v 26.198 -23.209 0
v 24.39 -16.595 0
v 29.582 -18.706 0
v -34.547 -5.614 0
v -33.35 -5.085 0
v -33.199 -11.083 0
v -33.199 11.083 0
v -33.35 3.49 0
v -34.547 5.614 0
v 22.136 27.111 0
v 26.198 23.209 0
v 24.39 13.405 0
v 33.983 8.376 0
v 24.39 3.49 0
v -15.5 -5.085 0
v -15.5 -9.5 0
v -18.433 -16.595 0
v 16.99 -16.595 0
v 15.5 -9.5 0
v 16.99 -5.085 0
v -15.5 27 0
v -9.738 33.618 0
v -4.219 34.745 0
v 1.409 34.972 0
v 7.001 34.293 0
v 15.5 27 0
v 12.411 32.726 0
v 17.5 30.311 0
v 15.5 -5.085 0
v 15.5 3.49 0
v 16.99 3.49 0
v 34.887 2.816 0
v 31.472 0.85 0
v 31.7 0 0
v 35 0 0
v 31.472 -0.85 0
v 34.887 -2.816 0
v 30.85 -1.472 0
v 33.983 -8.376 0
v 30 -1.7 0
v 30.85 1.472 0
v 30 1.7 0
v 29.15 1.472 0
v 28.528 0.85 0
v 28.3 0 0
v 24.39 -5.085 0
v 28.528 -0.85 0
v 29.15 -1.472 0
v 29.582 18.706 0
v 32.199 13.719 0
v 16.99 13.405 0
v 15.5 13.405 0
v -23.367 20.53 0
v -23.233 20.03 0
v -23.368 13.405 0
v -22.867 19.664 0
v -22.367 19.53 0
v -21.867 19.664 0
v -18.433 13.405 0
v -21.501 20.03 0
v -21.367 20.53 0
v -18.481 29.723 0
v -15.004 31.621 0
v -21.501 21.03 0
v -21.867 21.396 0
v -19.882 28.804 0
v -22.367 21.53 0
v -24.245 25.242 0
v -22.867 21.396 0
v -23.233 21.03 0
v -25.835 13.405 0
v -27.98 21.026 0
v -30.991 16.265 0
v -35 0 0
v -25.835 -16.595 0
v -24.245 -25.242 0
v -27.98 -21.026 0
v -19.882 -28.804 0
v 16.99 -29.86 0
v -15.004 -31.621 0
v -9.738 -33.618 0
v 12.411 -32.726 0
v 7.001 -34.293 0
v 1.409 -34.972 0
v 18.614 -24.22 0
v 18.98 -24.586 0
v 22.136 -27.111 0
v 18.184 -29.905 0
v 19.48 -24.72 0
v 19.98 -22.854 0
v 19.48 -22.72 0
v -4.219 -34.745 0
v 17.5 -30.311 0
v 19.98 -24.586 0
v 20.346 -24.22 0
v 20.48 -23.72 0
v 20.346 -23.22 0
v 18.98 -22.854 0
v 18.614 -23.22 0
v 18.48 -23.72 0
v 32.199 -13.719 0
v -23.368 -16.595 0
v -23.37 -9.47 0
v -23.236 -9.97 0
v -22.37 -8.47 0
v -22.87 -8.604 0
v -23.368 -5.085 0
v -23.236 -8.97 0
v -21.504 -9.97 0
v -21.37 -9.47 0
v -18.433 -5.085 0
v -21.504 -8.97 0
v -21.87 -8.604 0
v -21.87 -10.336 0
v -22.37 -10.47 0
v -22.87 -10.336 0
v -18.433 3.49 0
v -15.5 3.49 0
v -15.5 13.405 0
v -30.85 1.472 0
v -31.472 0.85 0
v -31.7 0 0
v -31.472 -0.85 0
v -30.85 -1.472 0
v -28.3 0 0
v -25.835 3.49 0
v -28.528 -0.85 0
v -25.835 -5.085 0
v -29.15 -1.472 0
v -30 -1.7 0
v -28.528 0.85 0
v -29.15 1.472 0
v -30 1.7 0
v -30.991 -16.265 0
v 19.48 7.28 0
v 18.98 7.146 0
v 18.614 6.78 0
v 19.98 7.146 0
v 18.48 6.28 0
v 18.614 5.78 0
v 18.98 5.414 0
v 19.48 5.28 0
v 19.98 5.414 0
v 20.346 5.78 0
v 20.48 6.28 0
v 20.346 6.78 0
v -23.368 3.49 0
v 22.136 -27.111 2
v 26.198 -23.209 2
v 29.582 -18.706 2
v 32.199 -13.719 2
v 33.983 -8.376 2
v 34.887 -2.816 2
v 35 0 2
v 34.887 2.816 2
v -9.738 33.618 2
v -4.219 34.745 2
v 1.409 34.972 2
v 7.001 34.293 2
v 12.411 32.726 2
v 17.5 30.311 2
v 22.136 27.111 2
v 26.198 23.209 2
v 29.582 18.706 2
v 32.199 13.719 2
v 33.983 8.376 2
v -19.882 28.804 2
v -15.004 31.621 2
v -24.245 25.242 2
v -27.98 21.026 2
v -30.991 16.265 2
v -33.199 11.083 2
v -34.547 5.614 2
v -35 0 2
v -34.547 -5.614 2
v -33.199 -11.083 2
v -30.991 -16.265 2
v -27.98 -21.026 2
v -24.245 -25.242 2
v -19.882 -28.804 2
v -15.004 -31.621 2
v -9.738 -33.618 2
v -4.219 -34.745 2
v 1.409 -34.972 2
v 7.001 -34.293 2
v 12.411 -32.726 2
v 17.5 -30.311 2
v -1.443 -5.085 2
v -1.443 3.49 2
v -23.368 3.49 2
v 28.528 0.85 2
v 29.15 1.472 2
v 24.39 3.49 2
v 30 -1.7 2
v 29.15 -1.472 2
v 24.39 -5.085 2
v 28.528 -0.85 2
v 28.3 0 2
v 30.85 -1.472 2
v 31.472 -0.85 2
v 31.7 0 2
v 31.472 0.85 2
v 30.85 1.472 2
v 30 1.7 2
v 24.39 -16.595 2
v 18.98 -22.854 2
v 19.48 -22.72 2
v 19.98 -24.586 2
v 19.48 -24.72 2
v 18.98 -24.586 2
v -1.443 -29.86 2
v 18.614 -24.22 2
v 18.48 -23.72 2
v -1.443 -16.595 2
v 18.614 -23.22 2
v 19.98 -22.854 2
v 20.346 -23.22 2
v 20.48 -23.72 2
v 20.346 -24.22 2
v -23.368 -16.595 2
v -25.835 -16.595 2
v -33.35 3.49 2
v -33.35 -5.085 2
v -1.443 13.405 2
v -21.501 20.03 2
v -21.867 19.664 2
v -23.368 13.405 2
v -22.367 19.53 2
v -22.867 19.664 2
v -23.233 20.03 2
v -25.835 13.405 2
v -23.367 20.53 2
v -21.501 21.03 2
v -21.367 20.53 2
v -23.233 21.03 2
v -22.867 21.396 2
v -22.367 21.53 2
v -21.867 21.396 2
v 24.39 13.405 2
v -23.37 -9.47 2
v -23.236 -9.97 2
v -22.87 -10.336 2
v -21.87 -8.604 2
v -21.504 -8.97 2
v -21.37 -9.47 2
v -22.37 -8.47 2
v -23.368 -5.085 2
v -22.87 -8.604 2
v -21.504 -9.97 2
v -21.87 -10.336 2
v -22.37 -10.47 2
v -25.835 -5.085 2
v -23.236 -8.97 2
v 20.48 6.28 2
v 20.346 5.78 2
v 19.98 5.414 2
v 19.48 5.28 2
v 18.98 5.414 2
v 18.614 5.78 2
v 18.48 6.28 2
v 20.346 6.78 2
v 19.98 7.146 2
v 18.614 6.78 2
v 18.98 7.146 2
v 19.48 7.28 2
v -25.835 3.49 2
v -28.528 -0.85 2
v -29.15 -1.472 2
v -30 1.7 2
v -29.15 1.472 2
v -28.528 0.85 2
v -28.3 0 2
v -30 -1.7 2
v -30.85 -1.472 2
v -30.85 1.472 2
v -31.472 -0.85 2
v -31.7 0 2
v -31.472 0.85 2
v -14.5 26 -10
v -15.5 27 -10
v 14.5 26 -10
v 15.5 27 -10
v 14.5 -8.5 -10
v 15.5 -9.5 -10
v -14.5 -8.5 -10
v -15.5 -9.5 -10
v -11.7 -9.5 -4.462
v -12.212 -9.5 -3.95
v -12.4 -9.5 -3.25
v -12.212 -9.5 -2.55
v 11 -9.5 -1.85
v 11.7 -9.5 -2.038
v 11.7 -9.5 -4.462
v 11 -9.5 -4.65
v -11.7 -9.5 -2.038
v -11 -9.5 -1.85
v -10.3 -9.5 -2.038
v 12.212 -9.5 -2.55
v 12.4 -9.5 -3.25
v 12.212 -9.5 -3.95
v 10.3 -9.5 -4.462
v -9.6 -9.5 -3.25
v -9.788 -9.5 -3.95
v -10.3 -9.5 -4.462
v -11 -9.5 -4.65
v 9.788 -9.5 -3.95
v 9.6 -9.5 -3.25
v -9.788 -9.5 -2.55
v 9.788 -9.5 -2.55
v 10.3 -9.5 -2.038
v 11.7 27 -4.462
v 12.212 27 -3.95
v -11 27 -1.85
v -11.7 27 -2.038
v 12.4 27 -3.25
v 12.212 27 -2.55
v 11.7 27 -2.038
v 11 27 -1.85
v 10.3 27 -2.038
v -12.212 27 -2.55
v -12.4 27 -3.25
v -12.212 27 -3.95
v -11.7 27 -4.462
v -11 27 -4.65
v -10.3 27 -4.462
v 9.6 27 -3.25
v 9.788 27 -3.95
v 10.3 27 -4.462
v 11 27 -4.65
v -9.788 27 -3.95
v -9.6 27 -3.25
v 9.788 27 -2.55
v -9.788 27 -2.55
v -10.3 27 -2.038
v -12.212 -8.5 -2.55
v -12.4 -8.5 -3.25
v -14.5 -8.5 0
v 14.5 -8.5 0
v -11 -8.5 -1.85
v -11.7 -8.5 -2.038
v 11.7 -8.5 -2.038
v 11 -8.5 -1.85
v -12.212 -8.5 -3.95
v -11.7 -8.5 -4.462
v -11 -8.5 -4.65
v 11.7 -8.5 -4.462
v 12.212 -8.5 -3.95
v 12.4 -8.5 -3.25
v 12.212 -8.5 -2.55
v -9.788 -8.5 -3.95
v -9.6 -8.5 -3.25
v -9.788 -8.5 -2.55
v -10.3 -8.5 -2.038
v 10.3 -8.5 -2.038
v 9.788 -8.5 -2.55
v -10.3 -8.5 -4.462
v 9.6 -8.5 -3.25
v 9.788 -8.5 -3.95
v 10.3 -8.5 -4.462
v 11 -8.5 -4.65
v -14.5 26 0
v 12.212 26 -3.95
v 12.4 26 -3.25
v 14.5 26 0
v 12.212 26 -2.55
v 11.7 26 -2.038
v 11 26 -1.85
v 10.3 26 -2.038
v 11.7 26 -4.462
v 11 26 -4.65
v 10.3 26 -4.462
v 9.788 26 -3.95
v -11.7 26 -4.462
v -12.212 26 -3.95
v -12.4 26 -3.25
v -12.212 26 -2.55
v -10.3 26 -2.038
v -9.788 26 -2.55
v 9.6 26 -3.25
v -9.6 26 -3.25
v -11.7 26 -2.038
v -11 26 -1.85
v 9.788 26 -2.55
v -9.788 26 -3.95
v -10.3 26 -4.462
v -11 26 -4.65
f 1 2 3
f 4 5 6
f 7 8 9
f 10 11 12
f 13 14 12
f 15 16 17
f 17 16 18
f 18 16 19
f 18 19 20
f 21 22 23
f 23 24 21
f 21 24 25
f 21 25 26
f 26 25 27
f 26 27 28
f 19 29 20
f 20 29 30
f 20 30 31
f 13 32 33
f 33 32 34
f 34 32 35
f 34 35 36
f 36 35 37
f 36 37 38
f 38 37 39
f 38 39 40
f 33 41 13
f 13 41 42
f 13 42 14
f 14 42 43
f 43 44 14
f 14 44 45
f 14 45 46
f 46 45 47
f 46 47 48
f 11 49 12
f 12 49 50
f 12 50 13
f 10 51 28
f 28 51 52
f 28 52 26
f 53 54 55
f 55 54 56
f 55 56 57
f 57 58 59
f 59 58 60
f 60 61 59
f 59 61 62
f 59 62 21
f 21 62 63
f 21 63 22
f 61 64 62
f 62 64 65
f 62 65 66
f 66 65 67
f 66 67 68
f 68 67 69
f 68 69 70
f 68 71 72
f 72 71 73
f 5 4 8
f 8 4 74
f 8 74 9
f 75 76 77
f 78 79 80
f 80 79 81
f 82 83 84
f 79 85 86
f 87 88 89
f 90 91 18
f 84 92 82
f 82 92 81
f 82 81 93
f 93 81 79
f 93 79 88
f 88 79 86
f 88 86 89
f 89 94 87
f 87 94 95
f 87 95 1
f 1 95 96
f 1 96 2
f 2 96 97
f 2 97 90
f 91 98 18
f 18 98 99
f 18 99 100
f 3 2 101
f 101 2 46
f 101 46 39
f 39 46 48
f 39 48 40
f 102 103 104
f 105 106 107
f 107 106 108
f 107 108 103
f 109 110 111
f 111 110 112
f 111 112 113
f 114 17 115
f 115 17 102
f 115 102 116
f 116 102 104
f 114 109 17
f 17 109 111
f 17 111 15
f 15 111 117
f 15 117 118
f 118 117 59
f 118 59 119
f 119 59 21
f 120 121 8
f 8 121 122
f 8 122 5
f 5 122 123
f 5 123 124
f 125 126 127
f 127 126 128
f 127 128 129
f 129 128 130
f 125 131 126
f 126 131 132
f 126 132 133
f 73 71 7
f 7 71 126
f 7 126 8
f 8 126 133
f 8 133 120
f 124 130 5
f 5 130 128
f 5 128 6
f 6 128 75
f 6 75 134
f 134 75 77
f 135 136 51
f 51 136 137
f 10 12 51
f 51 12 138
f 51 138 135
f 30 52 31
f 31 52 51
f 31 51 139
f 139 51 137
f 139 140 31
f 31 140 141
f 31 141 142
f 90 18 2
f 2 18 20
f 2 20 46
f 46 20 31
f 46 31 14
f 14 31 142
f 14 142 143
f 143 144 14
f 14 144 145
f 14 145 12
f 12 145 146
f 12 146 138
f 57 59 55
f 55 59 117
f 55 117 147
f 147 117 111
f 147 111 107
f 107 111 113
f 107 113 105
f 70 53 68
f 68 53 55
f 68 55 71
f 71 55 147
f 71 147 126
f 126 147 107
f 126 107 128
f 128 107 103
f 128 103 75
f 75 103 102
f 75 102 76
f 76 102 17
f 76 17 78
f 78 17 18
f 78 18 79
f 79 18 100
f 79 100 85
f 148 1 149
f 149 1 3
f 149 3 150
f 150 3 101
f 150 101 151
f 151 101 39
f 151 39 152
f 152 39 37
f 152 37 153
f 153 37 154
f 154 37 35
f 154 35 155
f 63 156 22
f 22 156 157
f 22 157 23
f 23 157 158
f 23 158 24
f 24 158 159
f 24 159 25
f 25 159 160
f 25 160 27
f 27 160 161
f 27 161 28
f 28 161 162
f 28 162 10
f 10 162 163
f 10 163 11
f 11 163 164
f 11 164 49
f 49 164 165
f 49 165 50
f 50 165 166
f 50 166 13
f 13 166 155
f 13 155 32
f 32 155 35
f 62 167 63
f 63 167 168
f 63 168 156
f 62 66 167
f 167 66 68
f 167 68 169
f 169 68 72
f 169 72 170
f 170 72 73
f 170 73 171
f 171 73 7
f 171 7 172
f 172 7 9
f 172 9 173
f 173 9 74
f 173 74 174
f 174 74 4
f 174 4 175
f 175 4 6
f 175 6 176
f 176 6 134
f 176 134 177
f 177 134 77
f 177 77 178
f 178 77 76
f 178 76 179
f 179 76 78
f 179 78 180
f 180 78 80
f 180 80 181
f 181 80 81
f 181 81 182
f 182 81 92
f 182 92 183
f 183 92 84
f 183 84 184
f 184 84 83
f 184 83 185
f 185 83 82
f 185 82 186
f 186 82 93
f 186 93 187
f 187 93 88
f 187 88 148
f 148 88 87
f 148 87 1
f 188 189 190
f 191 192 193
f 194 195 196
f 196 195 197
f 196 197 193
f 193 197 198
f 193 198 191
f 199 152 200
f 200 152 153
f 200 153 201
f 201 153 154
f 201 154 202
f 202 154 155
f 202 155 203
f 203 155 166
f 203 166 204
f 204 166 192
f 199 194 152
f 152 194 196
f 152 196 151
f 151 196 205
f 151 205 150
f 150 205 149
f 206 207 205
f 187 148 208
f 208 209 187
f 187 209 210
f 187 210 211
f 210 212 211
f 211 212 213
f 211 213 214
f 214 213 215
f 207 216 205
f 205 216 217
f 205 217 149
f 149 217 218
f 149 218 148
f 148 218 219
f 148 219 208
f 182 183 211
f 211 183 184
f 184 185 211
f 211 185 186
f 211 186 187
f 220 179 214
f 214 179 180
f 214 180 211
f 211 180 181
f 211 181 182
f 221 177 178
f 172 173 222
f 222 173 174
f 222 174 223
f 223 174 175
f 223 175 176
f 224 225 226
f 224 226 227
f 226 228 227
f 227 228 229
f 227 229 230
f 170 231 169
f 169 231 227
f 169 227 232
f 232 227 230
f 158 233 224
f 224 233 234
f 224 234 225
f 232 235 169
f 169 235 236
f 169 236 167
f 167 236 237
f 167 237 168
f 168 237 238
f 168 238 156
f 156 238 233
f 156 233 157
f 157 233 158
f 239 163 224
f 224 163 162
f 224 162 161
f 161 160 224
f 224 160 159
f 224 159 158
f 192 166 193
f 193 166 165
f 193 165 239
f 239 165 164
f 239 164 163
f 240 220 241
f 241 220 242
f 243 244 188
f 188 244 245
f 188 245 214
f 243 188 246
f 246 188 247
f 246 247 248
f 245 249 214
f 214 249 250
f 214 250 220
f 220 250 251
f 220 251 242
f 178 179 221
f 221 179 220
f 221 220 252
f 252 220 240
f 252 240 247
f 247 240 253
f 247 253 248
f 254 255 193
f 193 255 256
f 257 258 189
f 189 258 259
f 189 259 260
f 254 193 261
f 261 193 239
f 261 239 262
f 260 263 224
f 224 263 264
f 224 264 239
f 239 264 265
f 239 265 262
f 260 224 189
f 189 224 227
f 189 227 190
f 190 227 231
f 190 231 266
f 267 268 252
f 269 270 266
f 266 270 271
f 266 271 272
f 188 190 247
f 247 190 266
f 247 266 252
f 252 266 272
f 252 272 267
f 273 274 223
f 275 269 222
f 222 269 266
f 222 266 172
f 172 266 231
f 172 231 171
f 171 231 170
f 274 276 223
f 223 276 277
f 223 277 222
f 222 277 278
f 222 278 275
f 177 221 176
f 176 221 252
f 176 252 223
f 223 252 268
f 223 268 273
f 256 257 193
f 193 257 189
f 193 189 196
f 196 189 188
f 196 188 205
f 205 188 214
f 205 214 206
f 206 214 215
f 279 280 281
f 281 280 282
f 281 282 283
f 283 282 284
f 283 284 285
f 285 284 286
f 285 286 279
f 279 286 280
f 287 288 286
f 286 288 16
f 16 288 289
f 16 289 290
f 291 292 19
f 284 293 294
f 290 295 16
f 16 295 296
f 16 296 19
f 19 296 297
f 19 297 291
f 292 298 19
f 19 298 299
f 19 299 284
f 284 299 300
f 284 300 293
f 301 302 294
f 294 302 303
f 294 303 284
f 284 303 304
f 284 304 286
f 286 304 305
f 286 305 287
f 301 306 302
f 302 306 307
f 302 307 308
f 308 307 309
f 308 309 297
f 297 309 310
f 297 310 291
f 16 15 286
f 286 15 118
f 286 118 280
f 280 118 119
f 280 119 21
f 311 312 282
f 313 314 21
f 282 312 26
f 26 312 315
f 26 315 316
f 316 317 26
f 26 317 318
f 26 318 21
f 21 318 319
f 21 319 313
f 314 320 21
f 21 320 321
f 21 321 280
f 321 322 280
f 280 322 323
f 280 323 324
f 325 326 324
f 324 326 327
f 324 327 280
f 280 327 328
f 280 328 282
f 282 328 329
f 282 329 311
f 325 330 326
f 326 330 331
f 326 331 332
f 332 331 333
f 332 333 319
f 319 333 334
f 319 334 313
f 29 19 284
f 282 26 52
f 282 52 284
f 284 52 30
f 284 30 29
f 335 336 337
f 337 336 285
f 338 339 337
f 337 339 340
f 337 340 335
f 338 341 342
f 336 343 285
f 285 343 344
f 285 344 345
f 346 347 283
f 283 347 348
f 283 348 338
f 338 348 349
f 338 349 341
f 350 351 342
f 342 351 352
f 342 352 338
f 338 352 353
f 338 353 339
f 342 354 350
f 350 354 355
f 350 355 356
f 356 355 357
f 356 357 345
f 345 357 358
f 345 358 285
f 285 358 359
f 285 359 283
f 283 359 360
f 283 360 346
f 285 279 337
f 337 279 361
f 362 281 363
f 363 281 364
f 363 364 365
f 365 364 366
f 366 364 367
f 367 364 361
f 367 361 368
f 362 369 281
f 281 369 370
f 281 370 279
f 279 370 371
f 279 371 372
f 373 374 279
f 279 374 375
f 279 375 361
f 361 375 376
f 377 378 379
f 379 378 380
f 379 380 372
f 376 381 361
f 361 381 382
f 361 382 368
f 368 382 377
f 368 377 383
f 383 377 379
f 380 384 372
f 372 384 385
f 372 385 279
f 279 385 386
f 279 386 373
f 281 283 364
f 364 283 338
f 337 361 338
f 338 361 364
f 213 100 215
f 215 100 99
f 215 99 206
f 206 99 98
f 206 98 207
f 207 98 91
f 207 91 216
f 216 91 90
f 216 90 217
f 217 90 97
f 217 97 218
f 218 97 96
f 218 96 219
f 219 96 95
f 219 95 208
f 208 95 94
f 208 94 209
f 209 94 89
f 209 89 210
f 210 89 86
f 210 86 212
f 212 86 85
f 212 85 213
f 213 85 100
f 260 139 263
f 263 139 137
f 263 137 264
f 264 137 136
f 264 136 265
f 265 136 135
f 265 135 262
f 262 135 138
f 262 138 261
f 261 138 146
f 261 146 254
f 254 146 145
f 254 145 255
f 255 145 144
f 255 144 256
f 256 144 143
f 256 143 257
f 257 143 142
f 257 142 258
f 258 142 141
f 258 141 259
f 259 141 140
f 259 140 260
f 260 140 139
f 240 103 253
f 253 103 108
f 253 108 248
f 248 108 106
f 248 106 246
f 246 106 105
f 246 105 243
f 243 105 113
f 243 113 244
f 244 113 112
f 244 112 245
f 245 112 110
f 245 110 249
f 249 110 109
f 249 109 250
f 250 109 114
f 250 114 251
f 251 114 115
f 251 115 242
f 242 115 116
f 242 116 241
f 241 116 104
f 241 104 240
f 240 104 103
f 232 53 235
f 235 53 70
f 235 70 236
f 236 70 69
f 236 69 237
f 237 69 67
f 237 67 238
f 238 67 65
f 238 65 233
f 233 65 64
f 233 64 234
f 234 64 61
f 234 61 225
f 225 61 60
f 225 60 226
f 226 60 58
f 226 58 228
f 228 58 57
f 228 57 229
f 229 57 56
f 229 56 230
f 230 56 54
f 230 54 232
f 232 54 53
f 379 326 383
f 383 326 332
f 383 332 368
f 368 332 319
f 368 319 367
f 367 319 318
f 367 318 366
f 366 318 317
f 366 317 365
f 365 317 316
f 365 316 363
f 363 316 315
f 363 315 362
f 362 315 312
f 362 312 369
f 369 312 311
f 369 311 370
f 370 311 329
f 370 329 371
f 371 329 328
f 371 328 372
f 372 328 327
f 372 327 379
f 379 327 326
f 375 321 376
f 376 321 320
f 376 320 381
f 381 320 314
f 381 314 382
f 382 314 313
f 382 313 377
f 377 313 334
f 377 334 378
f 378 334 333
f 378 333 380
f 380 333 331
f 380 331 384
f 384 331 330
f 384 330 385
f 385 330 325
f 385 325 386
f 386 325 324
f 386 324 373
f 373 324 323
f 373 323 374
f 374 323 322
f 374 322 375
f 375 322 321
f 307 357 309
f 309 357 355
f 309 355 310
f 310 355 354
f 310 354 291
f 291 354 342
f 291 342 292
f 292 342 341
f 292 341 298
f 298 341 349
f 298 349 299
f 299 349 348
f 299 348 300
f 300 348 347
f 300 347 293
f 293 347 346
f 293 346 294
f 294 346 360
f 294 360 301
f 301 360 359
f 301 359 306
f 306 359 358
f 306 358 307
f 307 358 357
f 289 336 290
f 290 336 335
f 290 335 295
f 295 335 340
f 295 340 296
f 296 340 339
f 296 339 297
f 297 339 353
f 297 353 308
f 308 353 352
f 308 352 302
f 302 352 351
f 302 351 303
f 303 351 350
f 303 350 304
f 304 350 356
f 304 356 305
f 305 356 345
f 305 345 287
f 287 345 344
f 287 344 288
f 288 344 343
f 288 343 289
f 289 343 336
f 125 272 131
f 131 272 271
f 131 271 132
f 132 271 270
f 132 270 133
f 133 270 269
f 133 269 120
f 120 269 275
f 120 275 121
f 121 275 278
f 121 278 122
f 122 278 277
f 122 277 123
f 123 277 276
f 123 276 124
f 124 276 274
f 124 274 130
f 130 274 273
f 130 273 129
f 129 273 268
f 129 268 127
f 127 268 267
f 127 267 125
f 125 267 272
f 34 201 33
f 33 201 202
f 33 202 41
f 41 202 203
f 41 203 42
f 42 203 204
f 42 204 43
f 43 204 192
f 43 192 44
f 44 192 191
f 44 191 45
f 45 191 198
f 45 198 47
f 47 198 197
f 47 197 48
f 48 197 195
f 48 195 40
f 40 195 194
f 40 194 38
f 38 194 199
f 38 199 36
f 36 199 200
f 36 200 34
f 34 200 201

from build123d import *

# Parameters (mm, degrees)
SKETCH1_R                      = 35
BOSS_EXTRUDE1_DEPTH            = 2
SKETCH2_W                      = 31
SKETCH2_H                      = 36.5
SKETCH2_W_2                    = 29
SKETCH2_H_2                    = 34.5
BOSS_EXTRUDE2_DEPTH            = 10
SKETCH3_R                      = 1
CUT_EXTRUDE1_DEPTH             = 10
CUT_EXTRUDE2_REACH             = 58.721
SKETCH5_R                      = 1.4
CUT_EXTRUDE2_DIRECTION_2_REACH = 58.721
SKETCH6_R                      = 1.7
CUT_EXTRUDE3_DEPTH             = 51.931326313


with BuildPart() as part:
    # Sketch1 → Boss-Extrude1 (new body)
    with BuildSketch(Plane.XY):
        Circle(SKETCH1_R)
    extrude(amount=BOSS_EXTRUDE1_DEPTH)

    # Sketch2 → Boss-Extrude2 (add)
    with BuildSketch(Plane(origin=(0, 0, 0), x_dir=(-1, 0, 0), z_dir=(0, 0, -1))):
        with Locations((0, 8.75)):
            Rectangle(SKETCH2_W, SKETCH2_H)
        with Locations((0, 8.75)):
            Rectangle(SKETCH2_W_2, SKETCH2_H_2, mode=Mode.SUBTRACT)
    extrude(amount=BOSS_EXTRUDE2_DEPTH)

    # Sketch3 → Cut-Extrude1 (cut)
    with BuildSketch(Plane(origin=(0, 0, 0), x_dir=(-1, 0, 0), z_dir=(0, 0, -1))):
        with Locations((22.366777203, 20.53)):
            Circle(SKETCH3_R)
        with Locations((22.37, -9.469999827)):
            Circle(SKETCH3_R)
        with Locations((-19.48, 6.28)):
            Circle(SKETCH3_R)
        with Locations((-19.48, -23.72)):
            Circle(SKETCH3_R)
    extrude(amount=-CUT_EXTRUDE1_DEPTH, mode=Mode.SUBTRACT)

    # Cut-Extrude2: up to this face of the body (flat: up to its plane)
    cut_extrude2_end = Plane(part.part.faces().sort_by_distance((0, -9.5, -5))[0])
    # Sketch5 → Cut-Extrude2 (cut, up to the picked face)
    with BuildSketch(Plane(origin=(0, -8.5, 0), x_dir=(1, 0, 0), z_dir=(0, 1, 0)), mode=Mode.PRIVATE) as cut_extrude2_sk1:
        with Locations((-11, 3.25)):
            Circle(SKETCH5_R)
    cut_extrude2_tool1 = split(extrude(cut_extrude2_sk1.sketch, amount=-CUT_EXTRUDE2_REACH, mode=Mode.PRIVATE), bisect_by=cut_extrude2_end, keep=Keep.BOTH, mode=Mode.PRIVATE)
    # Sketch5 → Cut-Extrude2 (cut, up to the picked face)
    with BuildSketch(Plane(origin=(0, -8.5, 0), x_dir=(1, 0, 0), z_dir=(0, 1, 0)), mode=Mode.PRIVATE) as cut_extrude2_sk2:
        with Locations((11, 3.25)):
            Circle(SKETCH5_R)
    cut_extrude2_tool2 = split(extrude(cut_extrude2_sk2.sketch, amount=-CUT_EXTRUDE2_REACH, mode=Mode.PRIVATE), bisect_by=cut_extrude2_end, keep=Keep.BOTH, mode=Mode.PRIVATE)
    add(cut_extrude2_tool1.solids().sort_by(Axis((-11, -8.5, -3.25), (0, -1, 0)))[0], mode=Mode.SUBTRACT)
    add(cut_extrude2_tool2.solids().sort_by(Axis((11, -8.5, -3.25), (0, -1, 0)))[0], mode=Mode.SUBTRACT)

    # Cut-Extrude2 direction 2: up to this face of the body (flat: up to its plane)
    cut_extrude2_direction_2_end = Plane(part.part.faces().sort_by_distance((0, 27, -5))[0])
    # Sketch5 → Cut-Extrude2 direction 2 (cut, up to the picked face)
    with BuildSketch(Plane(origin=(0, -8.5, 0), x_dir=(1, 0, 0), z_dir=(0, 1, 0)), mode=Mode.PRIVATE) as cut_extrude2_direction_2_sk1:
        with Locations((-11, 3.25)):
            Circle(SKETCH5_R)
    cut_extrude2_direction_2_tool1 = split(extrude(cut_extrude2_direction_2_sk1.sketch, amount=CUT_EXTRUDE2_DIRECTION_2_REACH, mode=Mode.PRIVATE), bisect_by=cut_extrude2_direction_2_end, keep=Keep.BOTH, mode=Mode.PRIVATE)
    # Sketch5 → Cut-Extrude2 direction 2 (cut, up to the picked face)
    with BuildSketch(Plane(origin=(0, -8.5, 0), x_dir=(1, 0, 0), z_dir=(0, 1, 0)), mode=Mode.PRIVATE) as cut_extrude2_direction_2_sk2:
        with Locations((11, 3.25)):
            Circle(SKETCH5_R)
    cut_extrude2_direction_2_tool2 = split(extrude(cut_extrude2_direction_2_sk2.sketch, amount=CUT_EXTRUDE2_DIRECTION_2_REACH, mode=Mode.PRIVATE), bisect_by=cut_extrude2_direction_2_end, keep=Keep.BOTH, mode=Mode.PRIVATE)
    add(cut_extrude2_direction_2_tool1.solids().sort_by(Axis((-11, -8.5, -3.25), (0, 1, 0)))[0], mode=Mode.SUBTRACT)
    add(cut_extrude2_direction_2_tool2.solids().sort_by(Axis((11, -8.5, -3.25), (0, 1, 0)))[0], mode=Mode.SUBTRACT)

    # Sketch6 → Cut-Extrude3 (cut, through all)
    with BuildSketch(Plane.XY.offset(2)):
        with Locations((30, 0)):
            Circle(SKETCH6_R)
        with Locations((-30, 0)):
            Circle(SKETCH6_R)
    extrude(amount=-CUT_EXTRUDE3_DEPTH, mode=Mode.SUBTRACT)


solid = part.part
